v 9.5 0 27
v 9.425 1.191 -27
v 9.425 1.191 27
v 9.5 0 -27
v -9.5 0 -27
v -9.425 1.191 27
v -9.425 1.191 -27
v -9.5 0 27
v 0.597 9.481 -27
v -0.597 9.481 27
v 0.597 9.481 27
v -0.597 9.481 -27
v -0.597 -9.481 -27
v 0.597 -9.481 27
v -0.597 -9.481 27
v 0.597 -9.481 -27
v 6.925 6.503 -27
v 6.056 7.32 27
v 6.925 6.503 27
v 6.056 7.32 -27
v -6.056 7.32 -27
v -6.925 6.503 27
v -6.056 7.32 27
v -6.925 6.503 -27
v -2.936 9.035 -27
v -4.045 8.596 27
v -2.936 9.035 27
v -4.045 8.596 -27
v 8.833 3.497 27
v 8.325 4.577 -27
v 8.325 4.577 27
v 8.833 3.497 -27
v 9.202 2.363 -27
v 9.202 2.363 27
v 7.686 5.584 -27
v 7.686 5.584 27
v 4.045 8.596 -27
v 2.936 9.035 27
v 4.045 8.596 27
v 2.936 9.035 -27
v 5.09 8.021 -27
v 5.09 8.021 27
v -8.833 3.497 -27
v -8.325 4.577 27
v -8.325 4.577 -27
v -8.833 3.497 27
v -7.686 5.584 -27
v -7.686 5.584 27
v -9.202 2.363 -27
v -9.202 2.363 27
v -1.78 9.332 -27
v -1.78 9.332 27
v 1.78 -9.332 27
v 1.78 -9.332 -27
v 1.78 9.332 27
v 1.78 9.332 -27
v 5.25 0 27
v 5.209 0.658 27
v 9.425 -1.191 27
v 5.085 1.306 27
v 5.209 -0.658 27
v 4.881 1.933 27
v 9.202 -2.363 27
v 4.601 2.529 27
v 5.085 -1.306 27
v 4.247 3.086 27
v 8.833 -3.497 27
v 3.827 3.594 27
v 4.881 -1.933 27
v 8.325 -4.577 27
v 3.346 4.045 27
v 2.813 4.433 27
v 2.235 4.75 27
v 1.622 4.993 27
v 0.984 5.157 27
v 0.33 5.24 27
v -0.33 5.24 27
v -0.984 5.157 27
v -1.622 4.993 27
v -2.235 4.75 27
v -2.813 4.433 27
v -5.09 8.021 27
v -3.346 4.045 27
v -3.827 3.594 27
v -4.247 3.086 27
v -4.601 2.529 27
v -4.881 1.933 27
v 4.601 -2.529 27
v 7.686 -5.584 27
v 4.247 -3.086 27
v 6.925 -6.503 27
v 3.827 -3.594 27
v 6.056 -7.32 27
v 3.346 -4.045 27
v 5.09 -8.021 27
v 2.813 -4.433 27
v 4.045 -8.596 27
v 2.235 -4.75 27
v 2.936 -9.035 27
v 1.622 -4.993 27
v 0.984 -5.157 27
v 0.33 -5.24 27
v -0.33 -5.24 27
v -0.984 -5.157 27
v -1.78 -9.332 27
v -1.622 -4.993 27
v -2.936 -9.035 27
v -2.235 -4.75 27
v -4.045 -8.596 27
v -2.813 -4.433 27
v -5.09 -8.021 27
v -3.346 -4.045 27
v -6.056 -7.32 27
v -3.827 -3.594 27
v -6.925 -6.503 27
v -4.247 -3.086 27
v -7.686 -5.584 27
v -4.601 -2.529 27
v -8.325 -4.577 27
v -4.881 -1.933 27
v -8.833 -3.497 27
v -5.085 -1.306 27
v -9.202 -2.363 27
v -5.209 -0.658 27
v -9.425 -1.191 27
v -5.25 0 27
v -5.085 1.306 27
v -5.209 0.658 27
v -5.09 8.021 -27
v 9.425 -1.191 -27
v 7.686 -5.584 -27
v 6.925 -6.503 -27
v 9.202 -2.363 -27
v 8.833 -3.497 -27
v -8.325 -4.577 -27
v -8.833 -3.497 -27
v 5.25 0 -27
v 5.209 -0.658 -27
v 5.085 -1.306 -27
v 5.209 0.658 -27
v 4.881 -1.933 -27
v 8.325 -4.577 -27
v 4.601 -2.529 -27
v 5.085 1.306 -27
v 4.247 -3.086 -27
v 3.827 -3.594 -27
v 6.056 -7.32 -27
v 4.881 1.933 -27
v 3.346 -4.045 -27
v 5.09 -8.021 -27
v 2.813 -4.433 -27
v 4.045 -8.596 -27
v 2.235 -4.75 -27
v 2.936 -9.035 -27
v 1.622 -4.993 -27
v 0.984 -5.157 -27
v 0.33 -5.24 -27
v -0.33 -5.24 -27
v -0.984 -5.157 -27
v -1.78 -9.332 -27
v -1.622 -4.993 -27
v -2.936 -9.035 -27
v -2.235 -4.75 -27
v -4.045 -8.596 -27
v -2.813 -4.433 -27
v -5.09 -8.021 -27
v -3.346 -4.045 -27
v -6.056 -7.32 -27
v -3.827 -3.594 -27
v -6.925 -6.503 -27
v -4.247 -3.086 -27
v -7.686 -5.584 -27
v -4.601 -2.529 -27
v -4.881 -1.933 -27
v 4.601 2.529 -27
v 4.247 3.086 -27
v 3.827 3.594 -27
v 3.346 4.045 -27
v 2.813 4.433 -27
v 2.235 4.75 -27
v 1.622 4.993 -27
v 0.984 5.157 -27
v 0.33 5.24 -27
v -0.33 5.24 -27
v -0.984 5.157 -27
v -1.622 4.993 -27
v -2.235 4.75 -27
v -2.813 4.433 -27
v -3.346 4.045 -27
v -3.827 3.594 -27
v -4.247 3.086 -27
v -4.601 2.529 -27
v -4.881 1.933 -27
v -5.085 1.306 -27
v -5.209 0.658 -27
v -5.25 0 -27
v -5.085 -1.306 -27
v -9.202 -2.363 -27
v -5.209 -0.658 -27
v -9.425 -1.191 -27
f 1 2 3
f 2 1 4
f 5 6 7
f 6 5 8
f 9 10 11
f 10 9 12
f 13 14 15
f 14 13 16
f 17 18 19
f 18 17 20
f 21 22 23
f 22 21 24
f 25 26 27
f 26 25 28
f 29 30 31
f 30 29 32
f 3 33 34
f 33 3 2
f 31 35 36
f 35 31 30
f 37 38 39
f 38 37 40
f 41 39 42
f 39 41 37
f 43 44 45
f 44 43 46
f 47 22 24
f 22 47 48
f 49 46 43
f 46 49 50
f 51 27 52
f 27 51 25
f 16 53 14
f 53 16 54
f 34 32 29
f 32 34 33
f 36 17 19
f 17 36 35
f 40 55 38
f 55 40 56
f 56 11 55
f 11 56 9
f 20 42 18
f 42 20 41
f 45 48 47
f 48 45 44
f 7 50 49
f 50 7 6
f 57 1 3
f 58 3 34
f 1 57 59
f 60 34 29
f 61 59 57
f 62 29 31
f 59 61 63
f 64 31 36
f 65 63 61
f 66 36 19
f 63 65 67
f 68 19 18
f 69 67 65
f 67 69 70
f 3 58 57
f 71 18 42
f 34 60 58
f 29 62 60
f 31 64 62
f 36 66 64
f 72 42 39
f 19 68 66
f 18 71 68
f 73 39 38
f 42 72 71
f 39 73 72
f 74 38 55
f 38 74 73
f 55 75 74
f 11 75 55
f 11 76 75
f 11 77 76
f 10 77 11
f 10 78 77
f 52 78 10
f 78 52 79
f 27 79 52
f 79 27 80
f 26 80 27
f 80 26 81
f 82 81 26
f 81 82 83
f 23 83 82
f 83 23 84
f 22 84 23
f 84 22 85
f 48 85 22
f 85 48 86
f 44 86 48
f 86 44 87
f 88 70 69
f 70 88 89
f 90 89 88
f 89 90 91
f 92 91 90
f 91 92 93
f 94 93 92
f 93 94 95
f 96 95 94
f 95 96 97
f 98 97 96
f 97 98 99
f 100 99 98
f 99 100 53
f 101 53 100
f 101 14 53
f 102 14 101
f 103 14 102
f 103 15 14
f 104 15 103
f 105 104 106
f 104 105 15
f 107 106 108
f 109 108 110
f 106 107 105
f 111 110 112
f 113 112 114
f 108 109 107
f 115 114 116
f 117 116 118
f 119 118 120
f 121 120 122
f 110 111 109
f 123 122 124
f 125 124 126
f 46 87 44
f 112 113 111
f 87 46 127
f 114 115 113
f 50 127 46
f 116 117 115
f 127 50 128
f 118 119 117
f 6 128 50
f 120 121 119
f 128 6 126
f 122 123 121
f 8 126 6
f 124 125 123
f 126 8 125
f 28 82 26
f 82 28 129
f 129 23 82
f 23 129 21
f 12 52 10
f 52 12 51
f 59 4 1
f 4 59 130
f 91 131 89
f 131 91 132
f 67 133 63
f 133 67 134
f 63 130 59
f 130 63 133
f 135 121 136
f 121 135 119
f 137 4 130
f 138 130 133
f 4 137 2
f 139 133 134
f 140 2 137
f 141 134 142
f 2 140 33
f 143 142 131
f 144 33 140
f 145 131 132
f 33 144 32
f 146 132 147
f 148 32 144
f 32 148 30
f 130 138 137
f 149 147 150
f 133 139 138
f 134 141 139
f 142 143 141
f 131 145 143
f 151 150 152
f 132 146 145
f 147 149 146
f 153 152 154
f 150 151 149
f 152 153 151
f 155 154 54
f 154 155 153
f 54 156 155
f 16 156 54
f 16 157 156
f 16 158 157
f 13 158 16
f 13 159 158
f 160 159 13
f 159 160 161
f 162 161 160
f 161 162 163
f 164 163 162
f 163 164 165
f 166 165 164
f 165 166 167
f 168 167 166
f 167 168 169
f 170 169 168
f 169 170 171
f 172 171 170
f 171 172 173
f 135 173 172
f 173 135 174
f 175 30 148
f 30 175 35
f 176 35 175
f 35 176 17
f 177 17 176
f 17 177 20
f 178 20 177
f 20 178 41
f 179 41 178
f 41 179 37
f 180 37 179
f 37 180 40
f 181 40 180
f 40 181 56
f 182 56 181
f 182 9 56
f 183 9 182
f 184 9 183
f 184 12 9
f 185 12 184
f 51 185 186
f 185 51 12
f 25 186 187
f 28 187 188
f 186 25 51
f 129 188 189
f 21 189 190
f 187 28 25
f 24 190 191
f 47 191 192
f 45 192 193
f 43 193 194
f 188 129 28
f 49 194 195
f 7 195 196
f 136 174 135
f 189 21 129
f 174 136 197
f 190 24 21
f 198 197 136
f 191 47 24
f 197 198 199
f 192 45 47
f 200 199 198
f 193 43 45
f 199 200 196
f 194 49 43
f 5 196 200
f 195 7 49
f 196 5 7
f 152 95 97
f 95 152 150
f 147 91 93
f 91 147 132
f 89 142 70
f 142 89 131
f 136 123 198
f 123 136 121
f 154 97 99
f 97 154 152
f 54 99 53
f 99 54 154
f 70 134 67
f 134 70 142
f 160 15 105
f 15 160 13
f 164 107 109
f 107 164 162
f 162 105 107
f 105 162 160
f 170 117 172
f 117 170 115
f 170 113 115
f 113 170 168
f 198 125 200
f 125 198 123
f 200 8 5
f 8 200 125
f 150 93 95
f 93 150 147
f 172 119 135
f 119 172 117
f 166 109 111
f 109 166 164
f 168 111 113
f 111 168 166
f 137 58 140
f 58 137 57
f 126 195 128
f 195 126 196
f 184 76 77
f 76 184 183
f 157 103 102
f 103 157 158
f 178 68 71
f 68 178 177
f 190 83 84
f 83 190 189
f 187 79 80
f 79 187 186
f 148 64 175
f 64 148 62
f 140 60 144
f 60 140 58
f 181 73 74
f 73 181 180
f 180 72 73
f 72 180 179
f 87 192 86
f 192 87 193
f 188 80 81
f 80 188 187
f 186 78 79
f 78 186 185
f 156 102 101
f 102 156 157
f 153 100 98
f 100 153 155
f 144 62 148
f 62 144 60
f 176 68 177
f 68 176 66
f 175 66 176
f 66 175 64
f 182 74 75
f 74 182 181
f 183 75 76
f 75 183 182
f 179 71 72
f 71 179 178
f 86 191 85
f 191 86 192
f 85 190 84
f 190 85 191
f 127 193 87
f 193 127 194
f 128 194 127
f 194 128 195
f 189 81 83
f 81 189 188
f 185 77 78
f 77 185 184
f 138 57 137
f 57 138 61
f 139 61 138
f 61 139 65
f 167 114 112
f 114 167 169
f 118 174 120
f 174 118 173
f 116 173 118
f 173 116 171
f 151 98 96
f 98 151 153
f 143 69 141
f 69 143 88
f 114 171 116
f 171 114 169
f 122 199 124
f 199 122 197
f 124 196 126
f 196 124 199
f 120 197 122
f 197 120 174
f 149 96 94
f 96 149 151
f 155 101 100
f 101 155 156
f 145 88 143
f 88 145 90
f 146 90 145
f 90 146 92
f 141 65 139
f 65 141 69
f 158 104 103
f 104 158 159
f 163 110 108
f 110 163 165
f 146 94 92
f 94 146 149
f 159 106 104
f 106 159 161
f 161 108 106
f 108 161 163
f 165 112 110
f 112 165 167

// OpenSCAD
$fn = 50;


difference() {
	union() {
		translate(v = [0, 0, -27.0000000000]) {
			cylinder(h = 54, r = 9.5000000000);
		}
	}
	union() {
		translate(v = [0, 0, -100.0000000000]) {
			cylinder(h = 200, r = 5.2500000000);
		}
	}
}
